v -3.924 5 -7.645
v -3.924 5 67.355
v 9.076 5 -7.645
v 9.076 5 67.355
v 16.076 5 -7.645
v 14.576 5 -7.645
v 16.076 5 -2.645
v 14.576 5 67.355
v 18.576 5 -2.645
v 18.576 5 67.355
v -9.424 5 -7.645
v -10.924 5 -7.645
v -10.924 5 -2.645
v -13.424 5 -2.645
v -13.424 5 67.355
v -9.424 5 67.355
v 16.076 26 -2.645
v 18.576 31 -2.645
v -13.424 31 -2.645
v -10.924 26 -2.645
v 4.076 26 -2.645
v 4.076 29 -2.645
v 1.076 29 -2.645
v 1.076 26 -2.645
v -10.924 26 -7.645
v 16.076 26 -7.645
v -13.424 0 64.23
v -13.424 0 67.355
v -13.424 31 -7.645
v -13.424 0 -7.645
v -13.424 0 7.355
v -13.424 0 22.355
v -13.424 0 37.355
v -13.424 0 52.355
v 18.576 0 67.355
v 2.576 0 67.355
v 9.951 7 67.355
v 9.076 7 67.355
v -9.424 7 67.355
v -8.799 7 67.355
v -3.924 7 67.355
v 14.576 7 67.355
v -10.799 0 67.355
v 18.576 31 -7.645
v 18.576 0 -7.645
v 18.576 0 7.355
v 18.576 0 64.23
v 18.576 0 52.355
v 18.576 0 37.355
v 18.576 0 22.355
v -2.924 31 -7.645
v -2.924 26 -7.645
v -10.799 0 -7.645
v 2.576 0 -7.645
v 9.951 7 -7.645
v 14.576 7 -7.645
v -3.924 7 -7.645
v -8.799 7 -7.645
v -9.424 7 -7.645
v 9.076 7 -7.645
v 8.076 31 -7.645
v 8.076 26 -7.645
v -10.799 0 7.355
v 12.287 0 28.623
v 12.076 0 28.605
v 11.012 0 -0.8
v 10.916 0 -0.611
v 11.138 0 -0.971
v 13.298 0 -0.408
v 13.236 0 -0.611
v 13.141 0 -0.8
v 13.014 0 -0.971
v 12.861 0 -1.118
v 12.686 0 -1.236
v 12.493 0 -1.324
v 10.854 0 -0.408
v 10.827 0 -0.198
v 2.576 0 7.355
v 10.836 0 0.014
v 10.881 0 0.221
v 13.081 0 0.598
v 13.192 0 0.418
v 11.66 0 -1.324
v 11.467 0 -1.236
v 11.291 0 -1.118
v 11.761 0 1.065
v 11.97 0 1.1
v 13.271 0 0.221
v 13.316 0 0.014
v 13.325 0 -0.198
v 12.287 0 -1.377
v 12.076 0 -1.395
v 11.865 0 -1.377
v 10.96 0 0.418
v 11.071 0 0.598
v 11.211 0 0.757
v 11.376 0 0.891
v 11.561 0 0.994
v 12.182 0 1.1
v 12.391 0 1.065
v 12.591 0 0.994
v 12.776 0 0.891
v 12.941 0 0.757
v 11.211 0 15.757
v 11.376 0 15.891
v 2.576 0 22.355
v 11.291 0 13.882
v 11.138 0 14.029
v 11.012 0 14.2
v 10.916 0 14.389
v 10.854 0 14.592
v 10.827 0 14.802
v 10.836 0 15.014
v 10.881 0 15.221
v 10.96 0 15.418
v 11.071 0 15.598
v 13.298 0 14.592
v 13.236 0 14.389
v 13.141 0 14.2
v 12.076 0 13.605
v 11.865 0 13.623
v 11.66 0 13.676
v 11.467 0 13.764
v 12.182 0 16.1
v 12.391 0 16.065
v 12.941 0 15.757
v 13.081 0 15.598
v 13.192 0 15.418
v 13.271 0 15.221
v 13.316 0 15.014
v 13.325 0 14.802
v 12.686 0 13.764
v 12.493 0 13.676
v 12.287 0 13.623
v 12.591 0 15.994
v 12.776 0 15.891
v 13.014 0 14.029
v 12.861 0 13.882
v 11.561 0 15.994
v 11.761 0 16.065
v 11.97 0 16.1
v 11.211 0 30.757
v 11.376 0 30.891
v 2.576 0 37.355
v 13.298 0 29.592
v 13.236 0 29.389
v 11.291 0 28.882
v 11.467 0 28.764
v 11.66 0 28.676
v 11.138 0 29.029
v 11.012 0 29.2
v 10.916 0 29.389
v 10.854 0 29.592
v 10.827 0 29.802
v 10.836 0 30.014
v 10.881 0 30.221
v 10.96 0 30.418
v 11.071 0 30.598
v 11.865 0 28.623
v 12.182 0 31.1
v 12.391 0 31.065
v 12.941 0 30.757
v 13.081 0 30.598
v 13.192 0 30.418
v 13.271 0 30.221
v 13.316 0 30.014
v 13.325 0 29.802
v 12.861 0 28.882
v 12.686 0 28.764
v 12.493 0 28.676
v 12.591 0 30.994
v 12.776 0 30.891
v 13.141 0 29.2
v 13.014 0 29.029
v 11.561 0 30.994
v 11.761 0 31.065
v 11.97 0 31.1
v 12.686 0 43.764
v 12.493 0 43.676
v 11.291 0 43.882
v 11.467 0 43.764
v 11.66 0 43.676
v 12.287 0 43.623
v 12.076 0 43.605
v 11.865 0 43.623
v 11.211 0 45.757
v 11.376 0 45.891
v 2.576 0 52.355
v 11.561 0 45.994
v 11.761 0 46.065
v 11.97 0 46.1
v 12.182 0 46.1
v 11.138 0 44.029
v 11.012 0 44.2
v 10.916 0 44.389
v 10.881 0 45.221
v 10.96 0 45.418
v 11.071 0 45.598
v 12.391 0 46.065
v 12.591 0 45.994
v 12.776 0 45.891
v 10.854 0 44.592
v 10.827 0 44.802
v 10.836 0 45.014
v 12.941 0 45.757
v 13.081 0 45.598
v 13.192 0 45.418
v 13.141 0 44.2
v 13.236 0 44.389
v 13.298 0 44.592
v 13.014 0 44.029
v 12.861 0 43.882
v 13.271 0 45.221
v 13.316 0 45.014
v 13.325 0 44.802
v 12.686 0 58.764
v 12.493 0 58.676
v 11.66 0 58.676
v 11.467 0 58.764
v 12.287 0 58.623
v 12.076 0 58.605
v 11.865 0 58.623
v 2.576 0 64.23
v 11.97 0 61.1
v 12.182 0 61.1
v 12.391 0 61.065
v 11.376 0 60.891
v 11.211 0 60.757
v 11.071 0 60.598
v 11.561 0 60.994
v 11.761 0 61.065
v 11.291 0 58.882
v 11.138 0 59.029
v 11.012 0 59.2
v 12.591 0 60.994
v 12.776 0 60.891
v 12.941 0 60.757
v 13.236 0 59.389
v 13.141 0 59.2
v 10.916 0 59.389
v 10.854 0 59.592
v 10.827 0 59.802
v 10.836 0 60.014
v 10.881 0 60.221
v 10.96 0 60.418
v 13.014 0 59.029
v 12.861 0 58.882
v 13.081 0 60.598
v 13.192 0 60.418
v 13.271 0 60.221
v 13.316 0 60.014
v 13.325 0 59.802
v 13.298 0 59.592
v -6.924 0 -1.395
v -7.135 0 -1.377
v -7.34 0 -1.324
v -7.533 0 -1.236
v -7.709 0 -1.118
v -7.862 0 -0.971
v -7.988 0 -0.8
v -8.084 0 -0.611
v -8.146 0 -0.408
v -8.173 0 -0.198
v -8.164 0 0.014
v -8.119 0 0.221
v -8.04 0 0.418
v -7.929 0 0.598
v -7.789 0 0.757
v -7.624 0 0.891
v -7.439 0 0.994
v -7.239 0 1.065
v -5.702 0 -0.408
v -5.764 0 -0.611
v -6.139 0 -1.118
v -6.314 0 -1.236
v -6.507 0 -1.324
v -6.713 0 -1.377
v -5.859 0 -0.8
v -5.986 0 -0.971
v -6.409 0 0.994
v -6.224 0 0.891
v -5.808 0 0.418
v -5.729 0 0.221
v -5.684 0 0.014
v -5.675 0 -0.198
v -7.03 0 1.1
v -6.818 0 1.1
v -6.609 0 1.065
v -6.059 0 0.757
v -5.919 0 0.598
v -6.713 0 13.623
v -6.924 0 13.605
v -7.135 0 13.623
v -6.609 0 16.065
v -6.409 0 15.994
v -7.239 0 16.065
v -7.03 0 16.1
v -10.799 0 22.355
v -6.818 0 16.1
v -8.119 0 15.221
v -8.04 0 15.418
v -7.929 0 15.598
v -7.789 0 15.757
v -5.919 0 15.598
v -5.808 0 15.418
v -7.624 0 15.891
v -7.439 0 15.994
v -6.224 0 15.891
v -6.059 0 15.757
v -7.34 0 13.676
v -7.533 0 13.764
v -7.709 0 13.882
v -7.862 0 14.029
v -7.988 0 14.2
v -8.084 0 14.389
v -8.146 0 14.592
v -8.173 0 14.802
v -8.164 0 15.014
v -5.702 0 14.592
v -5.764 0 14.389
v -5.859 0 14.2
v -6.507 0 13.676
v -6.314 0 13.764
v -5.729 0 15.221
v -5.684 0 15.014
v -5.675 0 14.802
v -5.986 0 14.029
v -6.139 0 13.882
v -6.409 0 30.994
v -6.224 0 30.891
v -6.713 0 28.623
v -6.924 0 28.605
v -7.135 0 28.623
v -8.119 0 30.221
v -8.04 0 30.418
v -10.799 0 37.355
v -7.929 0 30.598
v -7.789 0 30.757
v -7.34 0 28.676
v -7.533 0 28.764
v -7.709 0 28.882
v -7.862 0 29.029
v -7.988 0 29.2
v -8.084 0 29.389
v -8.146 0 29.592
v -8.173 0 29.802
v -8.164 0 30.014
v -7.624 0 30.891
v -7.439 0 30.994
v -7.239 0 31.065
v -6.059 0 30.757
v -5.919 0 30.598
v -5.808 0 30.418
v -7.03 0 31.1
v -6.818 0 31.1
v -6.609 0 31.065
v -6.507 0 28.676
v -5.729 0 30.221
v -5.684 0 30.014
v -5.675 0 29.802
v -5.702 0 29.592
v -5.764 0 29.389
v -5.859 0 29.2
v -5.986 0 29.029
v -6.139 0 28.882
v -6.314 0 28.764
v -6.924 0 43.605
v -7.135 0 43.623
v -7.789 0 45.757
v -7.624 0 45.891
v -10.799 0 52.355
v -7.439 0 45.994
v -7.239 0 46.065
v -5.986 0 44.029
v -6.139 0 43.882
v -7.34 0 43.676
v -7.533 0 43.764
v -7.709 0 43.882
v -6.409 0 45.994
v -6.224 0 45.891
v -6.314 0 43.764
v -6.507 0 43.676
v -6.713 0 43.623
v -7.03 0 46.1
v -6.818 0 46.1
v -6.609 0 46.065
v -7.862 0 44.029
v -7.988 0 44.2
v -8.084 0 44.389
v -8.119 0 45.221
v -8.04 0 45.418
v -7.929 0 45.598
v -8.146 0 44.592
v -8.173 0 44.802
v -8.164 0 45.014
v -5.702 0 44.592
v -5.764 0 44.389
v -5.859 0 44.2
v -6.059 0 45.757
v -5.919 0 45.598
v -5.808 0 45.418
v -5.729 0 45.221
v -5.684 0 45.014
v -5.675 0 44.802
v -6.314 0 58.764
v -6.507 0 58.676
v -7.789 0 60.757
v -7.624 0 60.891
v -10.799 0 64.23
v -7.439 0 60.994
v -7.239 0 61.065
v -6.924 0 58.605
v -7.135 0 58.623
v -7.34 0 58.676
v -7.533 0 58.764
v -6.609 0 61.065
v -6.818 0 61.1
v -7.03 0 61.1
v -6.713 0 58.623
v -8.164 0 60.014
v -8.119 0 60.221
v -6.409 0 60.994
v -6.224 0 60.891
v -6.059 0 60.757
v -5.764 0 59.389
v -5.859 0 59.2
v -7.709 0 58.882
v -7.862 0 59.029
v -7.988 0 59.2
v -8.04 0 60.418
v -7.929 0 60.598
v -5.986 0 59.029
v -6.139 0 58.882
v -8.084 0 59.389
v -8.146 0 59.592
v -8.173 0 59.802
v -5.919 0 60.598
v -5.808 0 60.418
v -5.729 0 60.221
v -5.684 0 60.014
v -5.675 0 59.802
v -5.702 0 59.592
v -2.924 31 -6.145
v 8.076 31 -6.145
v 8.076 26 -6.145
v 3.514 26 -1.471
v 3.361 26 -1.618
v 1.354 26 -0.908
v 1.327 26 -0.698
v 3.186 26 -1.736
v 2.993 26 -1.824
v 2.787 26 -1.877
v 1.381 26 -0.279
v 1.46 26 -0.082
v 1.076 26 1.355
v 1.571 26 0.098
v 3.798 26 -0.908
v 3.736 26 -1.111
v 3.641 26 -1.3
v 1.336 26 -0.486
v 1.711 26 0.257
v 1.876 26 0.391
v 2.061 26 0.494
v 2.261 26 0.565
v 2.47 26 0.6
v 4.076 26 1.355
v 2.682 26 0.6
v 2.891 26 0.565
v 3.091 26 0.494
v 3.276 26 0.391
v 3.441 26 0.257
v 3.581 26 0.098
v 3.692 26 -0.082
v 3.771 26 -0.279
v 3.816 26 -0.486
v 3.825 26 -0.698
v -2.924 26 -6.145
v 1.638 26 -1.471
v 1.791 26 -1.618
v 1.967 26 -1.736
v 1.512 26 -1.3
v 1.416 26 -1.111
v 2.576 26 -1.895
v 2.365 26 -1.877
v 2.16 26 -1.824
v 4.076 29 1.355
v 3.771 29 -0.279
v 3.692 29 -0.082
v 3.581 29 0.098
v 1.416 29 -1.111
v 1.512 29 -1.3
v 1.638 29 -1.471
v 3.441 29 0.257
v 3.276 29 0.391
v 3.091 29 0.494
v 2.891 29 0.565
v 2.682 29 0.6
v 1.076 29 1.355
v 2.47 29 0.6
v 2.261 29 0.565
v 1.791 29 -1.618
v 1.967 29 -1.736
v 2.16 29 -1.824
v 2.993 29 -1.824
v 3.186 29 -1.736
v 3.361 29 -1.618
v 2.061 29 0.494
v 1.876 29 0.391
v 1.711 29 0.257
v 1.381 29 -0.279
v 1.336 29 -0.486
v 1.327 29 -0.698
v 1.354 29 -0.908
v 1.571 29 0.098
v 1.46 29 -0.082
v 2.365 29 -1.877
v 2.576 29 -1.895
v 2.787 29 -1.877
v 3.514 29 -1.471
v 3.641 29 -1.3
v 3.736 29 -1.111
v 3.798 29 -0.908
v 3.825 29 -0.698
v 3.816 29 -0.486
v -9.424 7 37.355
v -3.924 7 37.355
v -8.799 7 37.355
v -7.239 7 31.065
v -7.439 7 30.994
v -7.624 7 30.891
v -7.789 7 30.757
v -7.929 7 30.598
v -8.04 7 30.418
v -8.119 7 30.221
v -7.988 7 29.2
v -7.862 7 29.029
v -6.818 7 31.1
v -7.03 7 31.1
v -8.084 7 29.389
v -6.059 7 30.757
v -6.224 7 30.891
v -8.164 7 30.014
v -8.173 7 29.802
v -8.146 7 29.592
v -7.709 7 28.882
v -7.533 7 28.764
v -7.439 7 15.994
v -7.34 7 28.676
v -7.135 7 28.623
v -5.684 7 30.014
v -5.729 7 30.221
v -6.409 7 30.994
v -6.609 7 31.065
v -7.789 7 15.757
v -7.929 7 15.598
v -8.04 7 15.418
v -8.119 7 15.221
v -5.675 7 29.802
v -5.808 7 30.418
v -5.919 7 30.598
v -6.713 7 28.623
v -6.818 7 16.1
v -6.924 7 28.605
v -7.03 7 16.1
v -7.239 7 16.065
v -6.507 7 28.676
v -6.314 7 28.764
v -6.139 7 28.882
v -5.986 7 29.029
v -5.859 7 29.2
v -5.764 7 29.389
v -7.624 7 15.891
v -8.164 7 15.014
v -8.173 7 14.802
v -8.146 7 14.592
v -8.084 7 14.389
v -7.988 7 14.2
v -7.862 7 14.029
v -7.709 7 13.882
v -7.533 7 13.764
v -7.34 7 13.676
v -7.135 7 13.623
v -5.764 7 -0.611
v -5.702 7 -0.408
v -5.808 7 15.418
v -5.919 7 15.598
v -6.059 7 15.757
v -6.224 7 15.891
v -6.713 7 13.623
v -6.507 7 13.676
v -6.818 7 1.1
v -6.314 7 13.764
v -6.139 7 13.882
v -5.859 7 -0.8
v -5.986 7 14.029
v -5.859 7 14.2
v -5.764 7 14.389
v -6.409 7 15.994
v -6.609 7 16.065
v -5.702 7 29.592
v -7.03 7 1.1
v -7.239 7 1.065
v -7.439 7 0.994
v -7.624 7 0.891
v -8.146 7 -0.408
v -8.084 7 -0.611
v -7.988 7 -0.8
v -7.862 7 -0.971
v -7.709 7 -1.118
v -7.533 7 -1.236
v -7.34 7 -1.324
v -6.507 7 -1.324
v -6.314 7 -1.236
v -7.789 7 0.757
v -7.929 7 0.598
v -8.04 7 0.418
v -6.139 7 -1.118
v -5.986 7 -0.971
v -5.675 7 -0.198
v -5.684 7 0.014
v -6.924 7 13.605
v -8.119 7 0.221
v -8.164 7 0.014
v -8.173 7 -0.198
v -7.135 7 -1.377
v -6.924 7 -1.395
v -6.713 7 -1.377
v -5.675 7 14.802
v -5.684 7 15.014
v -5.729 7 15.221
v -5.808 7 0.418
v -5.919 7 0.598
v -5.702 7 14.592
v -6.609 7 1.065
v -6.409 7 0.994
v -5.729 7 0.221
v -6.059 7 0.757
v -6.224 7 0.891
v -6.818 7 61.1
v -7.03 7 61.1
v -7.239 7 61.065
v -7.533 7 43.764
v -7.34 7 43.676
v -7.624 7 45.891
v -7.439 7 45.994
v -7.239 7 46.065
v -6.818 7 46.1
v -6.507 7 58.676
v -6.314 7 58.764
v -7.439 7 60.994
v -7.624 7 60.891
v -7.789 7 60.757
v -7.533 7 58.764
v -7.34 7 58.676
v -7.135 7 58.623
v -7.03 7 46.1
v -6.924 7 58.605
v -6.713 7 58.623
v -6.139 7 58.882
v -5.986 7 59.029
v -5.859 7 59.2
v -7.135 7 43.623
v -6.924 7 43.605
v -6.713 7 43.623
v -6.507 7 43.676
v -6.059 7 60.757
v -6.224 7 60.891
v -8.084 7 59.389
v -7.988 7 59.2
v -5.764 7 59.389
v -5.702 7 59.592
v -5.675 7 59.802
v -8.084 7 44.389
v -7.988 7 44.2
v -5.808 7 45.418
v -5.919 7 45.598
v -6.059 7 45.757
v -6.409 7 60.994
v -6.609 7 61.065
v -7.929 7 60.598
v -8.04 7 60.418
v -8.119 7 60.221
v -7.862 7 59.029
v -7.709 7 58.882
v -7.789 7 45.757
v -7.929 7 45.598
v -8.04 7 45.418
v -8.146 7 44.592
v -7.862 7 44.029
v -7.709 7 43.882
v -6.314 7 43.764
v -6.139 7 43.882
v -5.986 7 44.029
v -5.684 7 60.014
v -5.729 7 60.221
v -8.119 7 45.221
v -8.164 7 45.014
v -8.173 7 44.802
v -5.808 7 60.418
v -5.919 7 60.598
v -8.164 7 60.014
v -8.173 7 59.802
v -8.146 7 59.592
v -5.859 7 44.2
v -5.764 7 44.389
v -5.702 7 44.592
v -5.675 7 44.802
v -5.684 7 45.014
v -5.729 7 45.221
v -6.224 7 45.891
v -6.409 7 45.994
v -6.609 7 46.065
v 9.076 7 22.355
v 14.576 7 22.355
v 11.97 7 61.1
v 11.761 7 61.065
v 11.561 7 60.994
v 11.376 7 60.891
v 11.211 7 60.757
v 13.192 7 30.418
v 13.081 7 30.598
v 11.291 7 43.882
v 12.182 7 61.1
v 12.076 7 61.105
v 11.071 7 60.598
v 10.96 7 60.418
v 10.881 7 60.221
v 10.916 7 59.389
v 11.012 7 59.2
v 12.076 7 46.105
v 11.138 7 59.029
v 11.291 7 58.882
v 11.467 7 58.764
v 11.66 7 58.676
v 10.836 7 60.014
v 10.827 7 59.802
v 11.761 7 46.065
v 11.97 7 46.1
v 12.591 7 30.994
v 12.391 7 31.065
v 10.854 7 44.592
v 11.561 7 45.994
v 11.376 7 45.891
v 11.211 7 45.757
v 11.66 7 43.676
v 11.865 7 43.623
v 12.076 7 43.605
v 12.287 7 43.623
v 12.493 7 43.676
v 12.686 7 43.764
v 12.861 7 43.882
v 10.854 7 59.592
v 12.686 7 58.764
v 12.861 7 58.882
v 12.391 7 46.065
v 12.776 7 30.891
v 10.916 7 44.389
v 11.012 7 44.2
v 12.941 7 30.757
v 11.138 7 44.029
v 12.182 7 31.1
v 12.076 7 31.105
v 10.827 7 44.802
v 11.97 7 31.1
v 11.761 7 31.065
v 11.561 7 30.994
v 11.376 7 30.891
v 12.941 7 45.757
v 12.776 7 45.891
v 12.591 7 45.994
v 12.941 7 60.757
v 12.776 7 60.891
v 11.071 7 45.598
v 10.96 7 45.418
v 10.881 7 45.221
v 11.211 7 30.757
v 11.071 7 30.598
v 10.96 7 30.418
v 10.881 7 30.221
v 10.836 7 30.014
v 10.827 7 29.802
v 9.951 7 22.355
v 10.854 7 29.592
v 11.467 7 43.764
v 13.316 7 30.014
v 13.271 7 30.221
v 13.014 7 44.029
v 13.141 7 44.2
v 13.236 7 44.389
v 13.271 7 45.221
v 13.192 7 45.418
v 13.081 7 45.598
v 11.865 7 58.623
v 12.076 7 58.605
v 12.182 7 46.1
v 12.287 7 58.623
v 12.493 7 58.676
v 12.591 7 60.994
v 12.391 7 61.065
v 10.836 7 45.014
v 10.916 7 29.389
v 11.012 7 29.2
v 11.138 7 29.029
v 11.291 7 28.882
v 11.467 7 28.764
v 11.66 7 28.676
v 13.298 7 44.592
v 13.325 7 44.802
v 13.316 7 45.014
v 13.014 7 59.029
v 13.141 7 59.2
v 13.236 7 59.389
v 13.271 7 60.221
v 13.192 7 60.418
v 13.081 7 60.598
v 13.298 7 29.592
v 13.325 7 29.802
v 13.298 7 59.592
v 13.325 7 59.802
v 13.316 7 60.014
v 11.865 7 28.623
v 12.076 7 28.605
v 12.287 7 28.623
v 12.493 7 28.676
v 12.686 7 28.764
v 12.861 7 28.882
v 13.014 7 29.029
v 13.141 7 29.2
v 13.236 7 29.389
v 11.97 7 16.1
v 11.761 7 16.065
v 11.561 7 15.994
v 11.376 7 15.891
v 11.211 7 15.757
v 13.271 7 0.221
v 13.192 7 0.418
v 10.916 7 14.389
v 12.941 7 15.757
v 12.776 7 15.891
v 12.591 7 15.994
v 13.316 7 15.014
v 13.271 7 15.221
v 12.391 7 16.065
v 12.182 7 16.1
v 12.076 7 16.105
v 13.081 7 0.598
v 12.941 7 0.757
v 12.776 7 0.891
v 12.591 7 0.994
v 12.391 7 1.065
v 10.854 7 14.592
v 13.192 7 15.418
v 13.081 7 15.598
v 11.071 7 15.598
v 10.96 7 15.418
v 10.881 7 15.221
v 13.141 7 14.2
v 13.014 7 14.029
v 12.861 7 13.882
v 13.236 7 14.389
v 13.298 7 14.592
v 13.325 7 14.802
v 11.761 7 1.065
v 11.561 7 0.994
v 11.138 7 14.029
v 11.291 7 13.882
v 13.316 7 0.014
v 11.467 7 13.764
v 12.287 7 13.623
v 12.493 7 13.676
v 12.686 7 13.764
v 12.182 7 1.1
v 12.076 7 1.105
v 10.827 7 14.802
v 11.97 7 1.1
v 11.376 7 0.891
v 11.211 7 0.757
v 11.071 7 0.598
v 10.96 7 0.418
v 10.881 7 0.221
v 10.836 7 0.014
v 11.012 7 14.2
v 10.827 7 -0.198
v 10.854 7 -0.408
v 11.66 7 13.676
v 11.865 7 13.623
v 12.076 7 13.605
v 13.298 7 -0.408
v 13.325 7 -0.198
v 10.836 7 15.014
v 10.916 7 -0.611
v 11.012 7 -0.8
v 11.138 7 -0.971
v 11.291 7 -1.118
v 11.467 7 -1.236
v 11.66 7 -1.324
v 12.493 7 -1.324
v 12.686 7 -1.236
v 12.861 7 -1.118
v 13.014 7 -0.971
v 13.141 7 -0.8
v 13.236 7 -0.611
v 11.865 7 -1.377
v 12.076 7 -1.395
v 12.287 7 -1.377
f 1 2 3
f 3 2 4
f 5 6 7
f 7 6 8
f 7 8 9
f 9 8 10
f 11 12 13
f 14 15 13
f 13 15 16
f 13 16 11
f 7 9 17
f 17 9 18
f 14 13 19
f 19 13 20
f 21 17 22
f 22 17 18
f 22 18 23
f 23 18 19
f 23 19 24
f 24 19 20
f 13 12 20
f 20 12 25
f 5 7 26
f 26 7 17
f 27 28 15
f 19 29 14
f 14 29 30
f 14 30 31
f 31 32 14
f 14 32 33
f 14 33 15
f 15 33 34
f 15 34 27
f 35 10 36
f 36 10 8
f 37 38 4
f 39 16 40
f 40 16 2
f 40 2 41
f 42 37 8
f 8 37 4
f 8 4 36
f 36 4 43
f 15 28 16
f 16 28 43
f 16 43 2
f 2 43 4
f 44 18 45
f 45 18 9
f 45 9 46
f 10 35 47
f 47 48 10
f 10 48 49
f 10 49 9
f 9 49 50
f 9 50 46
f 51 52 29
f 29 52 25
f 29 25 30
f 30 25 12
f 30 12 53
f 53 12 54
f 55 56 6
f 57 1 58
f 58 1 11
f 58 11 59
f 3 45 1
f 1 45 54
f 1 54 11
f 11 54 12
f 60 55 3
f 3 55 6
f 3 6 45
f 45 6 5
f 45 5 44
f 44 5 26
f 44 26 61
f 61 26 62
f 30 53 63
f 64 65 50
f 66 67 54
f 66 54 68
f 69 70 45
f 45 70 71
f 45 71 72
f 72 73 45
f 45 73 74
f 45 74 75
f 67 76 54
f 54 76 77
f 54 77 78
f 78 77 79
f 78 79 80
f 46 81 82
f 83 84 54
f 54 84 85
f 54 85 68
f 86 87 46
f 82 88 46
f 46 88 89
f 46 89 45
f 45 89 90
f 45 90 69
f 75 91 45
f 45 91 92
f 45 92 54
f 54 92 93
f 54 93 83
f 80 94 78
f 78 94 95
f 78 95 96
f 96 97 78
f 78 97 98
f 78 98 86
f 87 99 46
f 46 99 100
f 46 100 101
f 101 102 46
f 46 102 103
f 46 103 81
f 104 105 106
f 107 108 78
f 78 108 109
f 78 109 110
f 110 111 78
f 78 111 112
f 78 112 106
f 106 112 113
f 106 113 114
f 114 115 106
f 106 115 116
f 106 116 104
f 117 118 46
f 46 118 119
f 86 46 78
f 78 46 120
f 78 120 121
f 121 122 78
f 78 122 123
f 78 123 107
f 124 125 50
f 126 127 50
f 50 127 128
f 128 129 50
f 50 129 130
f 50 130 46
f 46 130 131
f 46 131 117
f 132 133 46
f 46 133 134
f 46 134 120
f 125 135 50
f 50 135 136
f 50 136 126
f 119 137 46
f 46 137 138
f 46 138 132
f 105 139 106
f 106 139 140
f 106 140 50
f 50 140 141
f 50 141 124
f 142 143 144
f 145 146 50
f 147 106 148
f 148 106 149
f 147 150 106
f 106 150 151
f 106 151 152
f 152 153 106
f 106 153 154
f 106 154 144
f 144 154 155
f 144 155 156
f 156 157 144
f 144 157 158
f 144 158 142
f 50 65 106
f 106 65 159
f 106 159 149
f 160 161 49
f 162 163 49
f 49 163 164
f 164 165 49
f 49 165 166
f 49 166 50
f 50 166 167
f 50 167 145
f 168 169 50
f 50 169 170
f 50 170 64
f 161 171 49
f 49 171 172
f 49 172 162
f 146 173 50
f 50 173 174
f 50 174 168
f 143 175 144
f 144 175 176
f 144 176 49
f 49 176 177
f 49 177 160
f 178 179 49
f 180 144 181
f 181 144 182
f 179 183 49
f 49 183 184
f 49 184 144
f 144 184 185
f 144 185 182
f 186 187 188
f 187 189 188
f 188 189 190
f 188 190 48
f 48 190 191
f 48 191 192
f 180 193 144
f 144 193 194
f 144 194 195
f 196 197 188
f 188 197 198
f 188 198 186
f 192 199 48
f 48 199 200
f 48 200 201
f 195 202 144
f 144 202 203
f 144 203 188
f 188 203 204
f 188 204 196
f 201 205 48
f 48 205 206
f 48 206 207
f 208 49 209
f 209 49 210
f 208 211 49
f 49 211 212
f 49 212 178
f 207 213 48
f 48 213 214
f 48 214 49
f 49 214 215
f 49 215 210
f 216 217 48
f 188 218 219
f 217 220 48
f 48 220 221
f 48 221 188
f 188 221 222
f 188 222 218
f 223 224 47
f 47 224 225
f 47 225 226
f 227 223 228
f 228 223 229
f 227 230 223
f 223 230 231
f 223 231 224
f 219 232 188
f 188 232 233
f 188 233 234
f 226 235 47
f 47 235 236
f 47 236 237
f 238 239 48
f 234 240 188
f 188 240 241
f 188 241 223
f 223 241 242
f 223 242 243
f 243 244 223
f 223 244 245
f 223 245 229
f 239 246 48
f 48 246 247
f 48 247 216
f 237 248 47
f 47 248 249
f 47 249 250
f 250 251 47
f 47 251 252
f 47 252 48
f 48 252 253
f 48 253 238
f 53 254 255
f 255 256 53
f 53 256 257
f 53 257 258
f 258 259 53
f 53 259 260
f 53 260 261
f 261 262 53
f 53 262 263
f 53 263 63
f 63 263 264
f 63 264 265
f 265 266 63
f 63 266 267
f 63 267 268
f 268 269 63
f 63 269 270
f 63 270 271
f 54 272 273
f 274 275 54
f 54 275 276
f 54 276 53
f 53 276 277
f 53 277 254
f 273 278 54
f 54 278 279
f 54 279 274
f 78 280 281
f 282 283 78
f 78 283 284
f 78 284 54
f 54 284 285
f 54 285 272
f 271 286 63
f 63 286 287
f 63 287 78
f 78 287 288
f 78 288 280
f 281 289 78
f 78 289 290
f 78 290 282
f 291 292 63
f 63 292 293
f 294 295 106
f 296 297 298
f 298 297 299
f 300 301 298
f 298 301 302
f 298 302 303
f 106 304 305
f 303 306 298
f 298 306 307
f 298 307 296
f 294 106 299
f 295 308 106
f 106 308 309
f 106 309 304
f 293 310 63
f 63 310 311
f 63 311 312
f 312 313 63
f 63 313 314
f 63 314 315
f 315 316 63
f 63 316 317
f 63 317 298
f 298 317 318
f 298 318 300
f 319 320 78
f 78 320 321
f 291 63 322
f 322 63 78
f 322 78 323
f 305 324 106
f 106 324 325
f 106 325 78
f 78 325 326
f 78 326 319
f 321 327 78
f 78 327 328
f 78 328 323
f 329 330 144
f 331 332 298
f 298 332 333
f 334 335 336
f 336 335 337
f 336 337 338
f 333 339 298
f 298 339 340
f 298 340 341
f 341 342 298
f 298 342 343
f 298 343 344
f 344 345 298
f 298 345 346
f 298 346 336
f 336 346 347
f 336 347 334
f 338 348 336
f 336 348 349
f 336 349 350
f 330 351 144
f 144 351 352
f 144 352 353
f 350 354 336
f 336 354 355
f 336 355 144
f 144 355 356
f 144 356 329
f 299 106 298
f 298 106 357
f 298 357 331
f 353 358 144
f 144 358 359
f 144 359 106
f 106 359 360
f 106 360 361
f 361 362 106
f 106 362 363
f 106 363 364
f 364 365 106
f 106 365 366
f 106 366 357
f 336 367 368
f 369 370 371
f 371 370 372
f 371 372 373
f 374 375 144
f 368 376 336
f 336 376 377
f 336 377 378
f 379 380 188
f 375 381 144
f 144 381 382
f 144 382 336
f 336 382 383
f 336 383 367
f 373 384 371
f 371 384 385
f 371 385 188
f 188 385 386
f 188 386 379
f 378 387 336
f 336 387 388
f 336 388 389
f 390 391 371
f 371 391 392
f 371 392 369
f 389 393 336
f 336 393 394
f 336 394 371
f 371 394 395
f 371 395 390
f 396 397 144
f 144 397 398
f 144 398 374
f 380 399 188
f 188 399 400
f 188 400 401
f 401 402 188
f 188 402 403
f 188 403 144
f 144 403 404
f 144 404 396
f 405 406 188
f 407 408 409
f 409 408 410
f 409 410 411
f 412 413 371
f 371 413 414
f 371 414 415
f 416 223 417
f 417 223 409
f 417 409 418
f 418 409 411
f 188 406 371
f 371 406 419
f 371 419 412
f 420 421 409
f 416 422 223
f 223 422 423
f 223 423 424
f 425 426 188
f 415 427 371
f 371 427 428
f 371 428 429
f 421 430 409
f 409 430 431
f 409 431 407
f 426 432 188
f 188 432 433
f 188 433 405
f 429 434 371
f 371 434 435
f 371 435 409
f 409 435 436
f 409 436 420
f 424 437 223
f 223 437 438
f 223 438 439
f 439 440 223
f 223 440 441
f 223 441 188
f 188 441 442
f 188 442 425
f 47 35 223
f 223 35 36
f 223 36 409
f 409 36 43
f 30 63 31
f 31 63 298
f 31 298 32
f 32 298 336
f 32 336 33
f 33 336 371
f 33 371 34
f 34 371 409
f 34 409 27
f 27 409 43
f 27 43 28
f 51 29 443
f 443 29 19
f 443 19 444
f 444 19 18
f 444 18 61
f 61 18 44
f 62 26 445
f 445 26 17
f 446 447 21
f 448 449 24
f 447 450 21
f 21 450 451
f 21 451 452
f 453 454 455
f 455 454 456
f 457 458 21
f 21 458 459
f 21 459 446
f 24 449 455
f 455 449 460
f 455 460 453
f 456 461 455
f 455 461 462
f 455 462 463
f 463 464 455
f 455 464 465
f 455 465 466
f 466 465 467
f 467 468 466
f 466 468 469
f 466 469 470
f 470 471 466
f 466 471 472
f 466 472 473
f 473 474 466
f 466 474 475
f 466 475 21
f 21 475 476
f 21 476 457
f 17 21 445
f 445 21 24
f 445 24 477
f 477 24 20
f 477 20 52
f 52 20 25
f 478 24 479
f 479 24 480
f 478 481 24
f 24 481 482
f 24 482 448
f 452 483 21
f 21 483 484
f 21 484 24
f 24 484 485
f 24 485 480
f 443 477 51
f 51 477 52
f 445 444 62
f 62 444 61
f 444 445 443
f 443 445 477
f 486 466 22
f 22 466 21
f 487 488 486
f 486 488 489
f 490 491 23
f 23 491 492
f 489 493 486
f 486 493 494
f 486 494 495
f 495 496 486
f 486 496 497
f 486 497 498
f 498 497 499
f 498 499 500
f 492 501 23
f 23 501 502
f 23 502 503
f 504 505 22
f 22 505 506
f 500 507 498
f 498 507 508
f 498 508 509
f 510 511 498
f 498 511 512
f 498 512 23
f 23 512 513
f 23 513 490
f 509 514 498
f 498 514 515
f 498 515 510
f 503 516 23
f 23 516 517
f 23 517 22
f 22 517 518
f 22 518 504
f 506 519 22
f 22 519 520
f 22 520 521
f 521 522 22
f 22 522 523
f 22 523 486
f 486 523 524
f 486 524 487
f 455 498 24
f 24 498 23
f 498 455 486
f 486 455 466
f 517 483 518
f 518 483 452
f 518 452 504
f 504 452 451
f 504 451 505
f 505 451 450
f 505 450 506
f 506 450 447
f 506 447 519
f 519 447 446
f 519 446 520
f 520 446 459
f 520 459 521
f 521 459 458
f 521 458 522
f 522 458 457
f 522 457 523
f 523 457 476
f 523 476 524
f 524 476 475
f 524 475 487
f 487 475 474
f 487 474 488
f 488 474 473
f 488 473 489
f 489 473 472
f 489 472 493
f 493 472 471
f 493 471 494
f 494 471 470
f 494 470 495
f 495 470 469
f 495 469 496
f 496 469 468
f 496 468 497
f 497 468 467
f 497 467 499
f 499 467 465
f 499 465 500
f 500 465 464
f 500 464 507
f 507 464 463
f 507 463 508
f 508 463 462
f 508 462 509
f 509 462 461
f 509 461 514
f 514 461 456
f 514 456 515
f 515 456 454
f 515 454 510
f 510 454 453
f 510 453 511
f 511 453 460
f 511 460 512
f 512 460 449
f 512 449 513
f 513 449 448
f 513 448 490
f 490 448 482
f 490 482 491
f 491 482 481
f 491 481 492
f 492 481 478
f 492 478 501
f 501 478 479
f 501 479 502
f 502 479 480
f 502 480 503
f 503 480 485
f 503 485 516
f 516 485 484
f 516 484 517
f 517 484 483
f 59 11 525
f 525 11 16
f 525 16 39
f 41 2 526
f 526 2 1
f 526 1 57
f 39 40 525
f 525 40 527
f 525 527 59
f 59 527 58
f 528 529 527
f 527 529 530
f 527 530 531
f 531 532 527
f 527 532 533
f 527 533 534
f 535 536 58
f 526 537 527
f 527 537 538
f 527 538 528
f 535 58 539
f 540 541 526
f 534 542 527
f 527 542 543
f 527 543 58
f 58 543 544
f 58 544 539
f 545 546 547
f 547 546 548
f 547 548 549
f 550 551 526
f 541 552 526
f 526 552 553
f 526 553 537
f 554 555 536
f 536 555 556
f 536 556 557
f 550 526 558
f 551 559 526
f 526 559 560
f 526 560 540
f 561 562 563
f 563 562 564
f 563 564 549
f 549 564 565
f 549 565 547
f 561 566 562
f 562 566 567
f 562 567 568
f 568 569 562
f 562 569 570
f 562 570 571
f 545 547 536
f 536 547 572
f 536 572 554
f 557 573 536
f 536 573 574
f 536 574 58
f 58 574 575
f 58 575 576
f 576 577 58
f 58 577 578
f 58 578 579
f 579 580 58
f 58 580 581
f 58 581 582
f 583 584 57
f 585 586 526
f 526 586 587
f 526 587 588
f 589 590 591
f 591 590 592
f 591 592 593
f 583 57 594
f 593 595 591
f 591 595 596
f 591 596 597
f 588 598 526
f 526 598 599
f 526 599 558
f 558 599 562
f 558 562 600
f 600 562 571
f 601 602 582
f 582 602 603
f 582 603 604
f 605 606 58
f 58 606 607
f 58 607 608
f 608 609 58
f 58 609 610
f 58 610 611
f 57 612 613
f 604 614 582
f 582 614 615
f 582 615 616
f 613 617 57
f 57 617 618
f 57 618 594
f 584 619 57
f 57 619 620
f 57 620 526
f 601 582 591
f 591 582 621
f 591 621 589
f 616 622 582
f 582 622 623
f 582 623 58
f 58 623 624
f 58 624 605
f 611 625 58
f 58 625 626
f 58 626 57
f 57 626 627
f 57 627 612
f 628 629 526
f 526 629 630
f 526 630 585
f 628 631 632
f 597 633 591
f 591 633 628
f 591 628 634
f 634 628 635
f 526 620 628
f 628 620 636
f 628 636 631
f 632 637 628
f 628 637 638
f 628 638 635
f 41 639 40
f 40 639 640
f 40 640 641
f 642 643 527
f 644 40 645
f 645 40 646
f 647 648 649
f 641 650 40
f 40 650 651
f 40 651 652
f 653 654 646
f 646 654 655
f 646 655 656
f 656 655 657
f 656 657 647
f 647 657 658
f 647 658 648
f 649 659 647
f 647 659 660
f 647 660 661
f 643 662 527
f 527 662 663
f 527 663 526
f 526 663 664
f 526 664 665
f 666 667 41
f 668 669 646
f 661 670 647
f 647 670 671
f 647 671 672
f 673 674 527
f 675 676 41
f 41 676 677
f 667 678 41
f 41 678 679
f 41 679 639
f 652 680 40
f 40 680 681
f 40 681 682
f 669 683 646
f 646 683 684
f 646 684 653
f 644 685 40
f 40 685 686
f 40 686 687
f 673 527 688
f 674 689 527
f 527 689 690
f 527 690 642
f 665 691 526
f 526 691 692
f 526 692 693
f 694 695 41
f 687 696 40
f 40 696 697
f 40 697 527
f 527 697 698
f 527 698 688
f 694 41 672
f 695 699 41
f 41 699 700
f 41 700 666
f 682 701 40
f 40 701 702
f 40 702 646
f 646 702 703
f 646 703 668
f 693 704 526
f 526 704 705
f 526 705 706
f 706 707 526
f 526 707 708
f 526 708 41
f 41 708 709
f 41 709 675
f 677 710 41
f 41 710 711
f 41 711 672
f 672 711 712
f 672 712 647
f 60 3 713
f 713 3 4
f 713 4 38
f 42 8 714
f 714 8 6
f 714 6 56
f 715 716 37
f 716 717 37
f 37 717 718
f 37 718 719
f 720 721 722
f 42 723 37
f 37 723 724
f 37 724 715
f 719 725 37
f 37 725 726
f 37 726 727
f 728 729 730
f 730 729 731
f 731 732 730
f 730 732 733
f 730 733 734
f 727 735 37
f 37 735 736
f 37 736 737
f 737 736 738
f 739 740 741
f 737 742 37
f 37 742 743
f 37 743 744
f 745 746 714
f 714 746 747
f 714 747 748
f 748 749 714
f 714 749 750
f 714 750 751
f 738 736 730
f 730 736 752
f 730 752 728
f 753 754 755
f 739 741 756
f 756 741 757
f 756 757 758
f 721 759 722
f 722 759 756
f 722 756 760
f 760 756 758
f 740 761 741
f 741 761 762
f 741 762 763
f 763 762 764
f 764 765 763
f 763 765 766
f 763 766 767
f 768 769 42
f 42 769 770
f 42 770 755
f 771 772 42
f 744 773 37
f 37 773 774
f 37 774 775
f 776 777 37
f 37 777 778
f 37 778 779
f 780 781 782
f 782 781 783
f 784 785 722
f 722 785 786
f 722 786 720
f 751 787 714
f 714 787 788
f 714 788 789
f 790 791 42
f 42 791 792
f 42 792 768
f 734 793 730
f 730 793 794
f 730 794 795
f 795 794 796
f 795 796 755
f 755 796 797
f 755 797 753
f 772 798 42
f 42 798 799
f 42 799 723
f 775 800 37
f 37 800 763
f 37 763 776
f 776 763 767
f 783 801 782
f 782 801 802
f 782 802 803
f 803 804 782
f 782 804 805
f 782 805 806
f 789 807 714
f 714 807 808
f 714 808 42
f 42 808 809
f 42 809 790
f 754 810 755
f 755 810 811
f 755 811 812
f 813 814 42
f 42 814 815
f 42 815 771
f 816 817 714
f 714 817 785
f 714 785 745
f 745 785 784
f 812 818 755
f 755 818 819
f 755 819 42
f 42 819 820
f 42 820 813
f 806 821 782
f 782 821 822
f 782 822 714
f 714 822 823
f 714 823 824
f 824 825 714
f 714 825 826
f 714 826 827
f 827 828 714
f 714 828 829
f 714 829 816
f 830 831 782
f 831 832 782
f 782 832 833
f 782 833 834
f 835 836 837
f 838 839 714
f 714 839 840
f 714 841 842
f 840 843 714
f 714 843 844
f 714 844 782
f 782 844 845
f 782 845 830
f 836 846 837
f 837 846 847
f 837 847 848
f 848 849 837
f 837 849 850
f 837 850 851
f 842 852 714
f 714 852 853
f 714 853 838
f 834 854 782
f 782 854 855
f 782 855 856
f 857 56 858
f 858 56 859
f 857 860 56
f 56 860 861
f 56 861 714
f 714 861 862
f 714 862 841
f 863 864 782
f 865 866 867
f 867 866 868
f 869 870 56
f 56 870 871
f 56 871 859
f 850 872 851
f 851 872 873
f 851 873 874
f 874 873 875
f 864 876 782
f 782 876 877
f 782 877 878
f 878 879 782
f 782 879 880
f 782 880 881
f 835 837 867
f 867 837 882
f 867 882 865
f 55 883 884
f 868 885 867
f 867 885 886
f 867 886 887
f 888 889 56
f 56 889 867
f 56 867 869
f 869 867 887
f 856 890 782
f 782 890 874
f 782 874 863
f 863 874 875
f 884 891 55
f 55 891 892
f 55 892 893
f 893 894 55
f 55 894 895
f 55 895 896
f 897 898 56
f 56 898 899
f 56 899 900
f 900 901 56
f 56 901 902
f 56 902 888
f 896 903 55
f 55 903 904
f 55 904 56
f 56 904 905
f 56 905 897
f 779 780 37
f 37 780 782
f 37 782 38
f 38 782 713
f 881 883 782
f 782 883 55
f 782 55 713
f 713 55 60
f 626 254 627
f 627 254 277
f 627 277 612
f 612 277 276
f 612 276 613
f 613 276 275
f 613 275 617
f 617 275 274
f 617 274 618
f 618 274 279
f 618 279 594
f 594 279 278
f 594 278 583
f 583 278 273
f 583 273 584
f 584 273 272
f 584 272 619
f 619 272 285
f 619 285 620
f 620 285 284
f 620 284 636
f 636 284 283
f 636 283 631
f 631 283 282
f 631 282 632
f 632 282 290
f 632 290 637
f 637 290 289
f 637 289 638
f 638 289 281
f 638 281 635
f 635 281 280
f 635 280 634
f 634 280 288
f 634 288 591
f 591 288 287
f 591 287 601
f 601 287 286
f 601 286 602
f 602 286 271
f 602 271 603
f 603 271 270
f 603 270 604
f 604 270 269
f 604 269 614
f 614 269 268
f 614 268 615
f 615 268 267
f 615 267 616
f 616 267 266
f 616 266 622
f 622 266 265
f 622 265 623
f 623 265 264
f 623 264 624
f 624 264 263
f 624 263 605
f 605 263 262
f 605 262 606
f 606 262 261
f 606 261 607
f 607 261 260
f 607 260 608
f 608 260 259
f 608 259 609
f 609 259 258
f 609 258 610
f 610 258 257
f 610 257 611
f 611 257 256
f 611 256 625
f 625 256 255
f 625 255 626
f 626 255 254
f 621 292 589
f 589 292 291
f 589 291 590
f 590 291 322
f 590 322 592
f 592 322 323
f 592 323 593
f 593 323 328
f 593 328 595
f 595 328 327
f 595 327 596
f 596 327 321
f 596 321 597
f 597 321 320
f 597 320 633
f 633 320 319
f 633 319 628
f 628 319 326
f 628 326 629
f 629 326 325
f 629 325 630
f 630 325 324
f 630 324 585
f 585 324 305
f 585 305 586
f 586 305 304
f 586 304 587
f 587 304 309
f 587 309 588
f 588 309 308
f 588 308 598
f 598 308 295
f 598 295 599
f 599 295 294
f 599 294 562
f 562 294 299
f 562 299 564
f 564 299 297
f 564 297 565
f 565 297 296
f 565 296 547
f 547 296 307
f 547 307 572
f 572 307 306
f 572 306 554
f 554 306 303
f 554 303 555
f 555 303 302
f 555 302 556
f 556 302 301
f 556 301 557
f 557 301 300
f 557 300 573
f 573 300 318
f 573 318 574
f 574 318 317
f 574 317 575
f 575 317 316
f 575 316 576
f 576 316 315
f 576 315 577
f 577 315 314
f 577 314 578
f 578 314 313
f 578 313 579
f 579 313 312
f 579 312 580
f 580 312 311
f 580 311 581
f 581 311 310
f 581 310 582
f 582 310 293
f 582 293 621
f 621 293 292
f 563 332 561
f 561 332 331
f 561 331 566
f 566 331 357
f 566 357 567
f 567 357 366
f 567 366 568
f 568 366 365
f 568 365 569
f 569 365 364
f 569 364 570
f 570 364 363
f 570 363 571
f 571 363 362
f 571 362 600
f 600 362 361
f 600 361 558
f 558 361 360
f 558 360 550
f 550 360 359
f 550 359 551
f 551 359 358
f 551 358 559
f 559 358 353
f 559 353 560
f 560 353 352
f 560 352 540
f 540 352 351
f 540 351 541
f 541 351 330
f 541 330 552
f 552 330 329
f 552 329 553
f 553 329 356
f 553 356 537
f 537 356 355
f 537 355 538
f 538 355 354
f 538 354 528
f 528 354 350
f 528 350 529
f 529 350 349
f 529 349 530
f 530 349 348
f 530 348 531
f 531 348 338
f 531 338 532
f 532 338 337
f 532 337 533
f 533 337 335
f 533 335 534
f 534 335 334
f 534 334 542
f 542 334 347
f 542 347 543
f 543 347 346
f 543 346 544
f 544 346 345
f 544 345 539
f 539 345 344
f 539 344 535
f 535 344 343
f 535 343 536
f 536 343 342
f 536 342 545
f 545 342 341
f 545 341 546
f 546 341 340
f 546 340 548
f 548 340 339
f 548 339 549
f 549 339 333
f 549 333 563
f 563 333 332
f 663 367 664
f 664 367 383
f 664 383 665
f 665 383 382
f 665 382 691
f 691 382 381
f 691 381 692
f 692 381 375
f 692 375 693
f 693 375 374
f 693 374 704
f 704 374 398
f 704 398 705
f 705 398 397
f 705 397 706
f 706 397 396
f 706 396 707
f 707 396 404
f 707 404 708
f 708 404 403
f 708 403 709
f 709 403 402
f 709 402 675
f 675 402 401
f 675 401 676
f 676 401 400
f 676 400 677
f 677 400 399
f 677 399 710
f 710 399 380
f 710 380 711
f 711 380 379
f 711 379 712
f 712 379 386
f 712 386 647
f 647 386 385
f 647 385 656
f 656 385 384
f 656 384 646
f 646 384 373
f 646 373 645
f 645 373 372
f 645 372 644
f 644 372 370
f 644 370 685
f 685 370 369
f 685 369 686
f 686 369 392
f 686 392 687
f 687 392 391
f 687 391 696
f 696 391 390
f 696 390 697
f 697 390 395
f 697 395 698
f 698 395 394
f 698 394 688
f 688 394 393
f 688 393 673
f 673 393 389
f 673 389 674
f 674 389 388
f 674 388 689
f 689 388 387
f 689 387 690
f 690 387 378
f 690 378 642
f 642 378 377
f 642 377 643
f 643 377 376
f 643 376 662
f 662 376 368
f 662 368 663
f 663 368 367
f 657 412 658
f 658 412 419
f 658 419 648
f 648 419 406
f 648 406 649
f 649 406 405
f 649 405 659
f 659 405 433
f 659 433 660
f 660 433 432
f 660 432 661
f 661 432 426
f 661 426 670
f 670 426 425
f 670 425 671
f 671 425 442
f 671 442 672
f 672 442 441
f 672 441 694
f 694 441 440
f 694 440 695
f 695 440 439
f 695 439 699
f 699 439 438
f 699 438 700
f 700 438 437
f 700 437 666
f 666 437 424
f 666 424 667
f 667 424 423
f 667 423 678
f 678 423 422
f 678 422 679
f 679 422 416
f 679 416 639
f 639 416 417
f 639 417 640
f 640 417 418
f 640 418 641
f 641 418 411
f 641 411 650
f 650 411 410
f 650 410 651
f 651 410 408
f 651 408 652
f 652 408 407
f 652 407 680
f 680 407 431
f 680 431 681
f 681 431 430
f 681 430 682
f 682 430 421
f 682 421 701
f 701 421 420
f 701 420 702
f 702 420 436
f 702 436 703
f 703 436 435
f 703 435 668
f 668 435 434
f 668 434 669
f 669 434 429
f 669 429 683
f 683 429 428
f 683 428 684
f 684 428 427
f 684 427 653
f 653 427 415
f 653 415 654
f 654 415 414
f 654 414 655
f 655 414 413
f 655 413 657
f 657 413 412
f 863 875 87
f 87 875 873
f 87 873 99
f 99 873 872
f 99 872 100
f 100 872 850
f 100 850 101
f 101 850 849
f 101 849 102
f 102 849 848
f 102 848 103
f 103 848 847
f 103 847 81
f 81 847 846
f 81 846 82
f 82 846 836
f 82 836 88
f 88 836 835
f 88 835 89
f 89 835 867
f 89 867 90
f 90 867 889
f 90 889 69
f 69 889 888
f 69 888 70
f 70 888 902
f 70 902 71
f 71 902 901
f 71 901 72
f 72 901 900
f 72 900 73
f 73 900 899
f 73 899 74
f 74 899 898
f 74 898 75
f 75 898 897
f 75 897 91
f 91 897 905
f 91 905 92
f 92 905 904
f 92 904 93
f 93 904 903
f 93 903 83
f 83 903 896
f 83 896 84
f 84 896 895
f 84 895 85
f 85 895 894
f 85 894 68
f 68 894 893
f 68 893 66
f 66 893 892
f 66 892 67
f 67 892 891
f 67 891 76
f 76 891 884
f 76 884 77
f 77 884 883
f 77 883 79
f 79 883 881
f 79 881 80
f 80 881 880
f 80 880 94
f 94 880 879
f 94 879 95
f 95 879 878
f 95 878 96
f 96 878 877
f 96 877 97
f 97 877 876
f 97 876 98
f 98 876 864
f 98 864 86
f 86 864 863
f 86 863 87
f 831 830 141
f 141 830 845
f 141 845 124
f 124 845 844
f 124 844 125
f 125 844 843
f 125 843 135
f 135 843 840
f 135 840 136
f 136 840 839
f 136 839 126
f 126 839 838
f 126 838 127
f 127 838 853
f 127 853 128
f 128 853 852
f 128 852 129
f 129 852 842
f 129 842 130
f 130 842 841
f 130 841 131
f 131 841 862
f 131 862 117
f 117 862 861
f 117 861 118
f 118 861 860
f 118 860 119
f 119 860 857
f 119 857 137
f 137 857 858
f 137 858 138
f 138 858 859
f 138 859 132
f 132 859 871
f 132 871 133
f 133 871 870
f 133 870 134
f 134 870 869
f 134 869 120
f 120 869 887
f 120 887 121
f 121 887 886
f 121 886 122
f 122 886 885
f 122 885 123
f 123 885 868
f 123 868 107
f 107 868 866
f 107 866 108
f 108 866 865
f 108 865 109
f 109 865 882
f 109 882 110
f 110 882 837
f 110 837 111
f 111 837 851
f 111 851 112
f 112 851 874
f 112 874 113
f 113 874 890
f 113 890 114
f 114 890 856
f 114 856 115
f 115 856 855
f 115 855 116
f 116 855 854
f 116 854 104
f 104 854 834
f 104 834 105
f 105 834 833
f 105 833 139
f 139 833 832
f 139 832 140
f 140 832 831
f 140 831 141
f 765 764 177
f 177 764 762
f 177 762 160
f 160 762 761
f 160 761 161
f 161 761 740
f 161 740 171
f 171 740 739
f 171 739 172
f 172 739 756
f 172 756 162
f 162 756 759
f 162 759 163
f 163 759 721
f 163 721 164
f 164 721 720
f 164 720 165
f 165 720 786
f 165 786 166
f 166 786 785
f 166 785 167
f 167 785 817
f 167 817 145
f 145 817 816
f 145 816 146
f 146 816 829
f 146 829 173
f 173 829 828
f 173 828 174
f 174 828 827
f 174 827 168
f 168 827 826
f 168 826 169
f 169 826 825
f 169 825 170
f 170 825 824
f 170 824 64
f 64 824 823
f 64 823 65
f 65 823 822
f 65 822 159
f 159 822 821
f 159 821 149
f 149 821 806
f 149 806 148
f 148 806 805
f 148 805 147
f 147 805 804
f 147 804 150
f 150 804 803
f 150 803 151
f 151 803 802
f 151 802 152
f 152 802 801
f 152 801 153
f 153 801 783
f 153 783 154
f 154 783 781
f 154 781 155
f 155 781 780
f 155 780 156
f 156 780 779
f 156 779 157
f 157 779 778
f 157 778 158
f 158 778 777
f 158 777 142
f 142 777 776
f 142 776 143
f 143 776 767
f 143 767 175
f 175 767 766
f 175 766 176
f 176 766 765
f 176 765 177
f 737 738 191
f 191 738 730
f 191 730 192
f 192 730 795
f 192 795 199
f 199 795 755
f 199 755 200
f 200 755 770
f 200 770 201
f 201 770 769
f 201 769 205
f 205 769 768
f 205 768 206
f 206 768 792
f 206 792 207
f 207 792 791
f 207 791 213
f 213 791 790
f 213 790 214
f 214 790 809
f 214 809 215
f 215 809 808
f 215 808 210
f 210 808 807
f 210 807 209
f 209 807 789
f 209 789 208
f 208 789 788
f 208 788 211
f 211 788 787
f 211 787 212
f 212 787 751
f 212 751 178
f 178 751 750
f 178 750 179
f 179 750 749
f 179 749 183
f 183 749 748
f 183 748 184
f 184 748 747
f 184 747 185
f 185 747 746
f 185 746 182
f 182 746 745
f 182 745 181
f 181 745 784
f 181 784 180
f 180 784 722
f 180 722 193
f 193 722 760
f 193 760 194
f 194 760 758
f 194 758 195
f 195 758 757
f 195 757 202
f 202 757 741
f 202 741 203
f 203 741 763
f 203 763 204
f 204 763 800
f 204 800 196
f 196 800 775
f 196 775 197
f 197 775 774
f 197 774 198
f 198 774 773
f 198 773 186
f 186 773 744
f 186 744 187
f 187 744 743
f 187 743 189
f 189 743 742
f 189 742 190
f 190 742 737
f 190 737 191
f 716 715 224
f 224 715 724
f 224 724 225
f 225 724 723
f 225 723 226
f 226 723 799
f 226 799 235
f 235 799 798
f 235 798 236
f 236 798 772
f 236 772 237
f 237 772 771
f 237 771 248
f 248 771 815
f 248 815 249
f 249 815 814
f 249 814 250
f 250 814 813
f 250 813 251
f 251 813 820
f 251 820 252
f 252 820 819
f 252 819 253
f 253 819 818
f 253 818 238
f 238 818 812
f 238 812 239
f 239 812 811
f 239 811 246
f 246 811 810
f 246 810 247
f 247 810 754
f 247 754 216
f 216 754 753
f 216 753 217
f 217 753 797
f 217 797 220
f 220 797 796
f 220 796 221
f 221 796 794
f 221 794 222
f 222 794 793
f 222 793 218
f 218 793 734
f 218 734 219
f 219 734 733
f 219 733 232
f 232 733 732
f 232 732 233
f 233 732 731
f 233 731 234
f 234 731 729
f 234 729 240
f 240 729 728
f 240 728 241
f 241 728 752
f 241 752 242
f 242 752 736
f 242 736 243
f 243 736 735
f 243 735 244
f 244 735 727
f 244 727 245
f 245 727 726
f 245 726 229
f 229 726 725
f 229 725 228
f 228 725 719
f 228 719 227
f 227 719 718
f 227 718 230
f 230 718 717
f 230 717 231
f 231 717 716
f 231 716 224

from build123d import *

# Parameters (mm, degrees)
SKETCH1_W                   = 32
SKETCH1_H                   = 75
BOSS_EXTRUDE1_DEPTH         = 5
SKETCH5_W                   = 2.5
SKETCH5_H                   = 5
BOSS_EXTRUDE2_DEPTH         = 26
SKETCH7_W                   = 5
SKETCH7_H                   = 5
BOSS_EXTRUDE3_DEPTH         = 27
SKETCH8_W                   = 11
SKETCH8_H                   = 5
CUT_EXTRUDE1_DEPTH          = 1.5
SKETCH9_W                   = 3
SKETCH9_H                   = 3
BOSS_EXTRUDE4_DEPTH         = 4
SKETCH10_R                  = 1.25
CUT_EXTRUDE2_DEPTH          = 3
SKETCH11_W                  = 5.5
SKETCH11_H                  = 75
BOSS_EXTRUDE5_DEPTH         = 2
TAP_DRILL_FOR_M3X0_5_TAP1_D = 2.5


with BuildPart() as part:
    # Sketch1 → Boss-Extrude1 (new body)
    with BuildSketch(Plane(origin=(0, 0, 0), x_dir=(1, 0, 0), z_dir=(0, 1, 0))):
        with Locations((2.576120431, -29.854896849)):
            Rectangle(SKETCH1_W, SKETCH1_H)
    extrude(amount=BOSS_EXTRUDE1_DEPTH)

    # Sketch5 → Boss-Extrude2 (add)
    with BuildSketch(Plane(origin=(0, 5, 0), x_dir=(1, 0, 0), z_dir=(0, 1, 0))):
        with Locations((-12.173879569, 5.145103151)):
            Rectangle(SKETCH5_W, SKETCH5_H)
        with Locations((17.326120431, 5.145103151)):
            Rectangle(SKETCH5_W, SKETCH5_H)
    extrude(amount=BOSS_EXTRUDE2_DEPTH)

    # Sketch7 → Boss-Extrude3 (add)
    with BuildSketch(Plane.ZY.offset(-16.076120431)):
        with Locations((-5.145103151, 28.5)):
            Rectangle(SKETCH7_W, SKETCH7_H)
    extrude(amount=BOSS_EXTRUDE3_DEPTH)

    # Sketch8 → Cut-Extrude1 (cut)
    with BuildSketch(Plane(origin=(0, 0, -7.645103151), x_dir=(-1, 0, 0), z_dir=(0, 0, -1))):
        with Locations((-2.576120431, 28.5)):
            Rectangle(SKETCH8_W, SKETCH8_H)
    extrude(amount=-CUT_EXTRUDE1_DEPTH, mode=Mode.SUBTRACT)

    # Sketch9 → Boss-Extrude4 (add)
    with BuildSketch(Plane.XY.offset(-2.645103151)):
        with Locations((2.576120431, 27.5)):
            Rectangle(SKETCH9_W, SKETCH9_H)
    extrude(amount=BOSS_EXTRUDE4_DEPTH)

    # Sketch10 → Cut-Extrude2 (cut)
    with BuildSketch(Plane(origin=(0, 26, 0), x_dir=(-1, 0, 0), z_dir=(0, -1, 0))):
        with Locations((-2.576120431, 0.645103151)):
            Circle(SKETCH10_R)
    extrude(amount=-CUT_EXTRUDE2_DEPTH, mode=Mode.SUBTRACT)

    # Sketch11 → Boss-Extrude5 (add)
    with BuildSketch(Plane(origin=(0, 5, 0), x_dir=(1, 0, 0), z_dir=(0, 1, 0))):
        with Locations((-6.673879569, -29.854896849)):
            Rectangle(SKETCH11_W, SKETCH11_H)
        with Locations((11.826120431, -29.854896849)):
            Rectangle(SKETCH11_W, SKETCH11_H)
    extrude(amount=BOSS_EXTRUDE5_DEPTH)

    # Tap Drill for M3x0.5 Tap1 (through all)
    with Locations(Plane(origin=(12.076120431, 0, 59.854896849), x_dir=(0, 0, -1), z_dir=(0, -1, 0))):
        with Locations((0, 0), (15, 0), (30, 0), (45, 0), (60, 0), (0, -19), (15, -19), (30, -19), (45, -19), (60, -19)):
            Hole(TAP_DRILL_FOR_M3X0_5_TAP1_D / 2)


solid = part.part
